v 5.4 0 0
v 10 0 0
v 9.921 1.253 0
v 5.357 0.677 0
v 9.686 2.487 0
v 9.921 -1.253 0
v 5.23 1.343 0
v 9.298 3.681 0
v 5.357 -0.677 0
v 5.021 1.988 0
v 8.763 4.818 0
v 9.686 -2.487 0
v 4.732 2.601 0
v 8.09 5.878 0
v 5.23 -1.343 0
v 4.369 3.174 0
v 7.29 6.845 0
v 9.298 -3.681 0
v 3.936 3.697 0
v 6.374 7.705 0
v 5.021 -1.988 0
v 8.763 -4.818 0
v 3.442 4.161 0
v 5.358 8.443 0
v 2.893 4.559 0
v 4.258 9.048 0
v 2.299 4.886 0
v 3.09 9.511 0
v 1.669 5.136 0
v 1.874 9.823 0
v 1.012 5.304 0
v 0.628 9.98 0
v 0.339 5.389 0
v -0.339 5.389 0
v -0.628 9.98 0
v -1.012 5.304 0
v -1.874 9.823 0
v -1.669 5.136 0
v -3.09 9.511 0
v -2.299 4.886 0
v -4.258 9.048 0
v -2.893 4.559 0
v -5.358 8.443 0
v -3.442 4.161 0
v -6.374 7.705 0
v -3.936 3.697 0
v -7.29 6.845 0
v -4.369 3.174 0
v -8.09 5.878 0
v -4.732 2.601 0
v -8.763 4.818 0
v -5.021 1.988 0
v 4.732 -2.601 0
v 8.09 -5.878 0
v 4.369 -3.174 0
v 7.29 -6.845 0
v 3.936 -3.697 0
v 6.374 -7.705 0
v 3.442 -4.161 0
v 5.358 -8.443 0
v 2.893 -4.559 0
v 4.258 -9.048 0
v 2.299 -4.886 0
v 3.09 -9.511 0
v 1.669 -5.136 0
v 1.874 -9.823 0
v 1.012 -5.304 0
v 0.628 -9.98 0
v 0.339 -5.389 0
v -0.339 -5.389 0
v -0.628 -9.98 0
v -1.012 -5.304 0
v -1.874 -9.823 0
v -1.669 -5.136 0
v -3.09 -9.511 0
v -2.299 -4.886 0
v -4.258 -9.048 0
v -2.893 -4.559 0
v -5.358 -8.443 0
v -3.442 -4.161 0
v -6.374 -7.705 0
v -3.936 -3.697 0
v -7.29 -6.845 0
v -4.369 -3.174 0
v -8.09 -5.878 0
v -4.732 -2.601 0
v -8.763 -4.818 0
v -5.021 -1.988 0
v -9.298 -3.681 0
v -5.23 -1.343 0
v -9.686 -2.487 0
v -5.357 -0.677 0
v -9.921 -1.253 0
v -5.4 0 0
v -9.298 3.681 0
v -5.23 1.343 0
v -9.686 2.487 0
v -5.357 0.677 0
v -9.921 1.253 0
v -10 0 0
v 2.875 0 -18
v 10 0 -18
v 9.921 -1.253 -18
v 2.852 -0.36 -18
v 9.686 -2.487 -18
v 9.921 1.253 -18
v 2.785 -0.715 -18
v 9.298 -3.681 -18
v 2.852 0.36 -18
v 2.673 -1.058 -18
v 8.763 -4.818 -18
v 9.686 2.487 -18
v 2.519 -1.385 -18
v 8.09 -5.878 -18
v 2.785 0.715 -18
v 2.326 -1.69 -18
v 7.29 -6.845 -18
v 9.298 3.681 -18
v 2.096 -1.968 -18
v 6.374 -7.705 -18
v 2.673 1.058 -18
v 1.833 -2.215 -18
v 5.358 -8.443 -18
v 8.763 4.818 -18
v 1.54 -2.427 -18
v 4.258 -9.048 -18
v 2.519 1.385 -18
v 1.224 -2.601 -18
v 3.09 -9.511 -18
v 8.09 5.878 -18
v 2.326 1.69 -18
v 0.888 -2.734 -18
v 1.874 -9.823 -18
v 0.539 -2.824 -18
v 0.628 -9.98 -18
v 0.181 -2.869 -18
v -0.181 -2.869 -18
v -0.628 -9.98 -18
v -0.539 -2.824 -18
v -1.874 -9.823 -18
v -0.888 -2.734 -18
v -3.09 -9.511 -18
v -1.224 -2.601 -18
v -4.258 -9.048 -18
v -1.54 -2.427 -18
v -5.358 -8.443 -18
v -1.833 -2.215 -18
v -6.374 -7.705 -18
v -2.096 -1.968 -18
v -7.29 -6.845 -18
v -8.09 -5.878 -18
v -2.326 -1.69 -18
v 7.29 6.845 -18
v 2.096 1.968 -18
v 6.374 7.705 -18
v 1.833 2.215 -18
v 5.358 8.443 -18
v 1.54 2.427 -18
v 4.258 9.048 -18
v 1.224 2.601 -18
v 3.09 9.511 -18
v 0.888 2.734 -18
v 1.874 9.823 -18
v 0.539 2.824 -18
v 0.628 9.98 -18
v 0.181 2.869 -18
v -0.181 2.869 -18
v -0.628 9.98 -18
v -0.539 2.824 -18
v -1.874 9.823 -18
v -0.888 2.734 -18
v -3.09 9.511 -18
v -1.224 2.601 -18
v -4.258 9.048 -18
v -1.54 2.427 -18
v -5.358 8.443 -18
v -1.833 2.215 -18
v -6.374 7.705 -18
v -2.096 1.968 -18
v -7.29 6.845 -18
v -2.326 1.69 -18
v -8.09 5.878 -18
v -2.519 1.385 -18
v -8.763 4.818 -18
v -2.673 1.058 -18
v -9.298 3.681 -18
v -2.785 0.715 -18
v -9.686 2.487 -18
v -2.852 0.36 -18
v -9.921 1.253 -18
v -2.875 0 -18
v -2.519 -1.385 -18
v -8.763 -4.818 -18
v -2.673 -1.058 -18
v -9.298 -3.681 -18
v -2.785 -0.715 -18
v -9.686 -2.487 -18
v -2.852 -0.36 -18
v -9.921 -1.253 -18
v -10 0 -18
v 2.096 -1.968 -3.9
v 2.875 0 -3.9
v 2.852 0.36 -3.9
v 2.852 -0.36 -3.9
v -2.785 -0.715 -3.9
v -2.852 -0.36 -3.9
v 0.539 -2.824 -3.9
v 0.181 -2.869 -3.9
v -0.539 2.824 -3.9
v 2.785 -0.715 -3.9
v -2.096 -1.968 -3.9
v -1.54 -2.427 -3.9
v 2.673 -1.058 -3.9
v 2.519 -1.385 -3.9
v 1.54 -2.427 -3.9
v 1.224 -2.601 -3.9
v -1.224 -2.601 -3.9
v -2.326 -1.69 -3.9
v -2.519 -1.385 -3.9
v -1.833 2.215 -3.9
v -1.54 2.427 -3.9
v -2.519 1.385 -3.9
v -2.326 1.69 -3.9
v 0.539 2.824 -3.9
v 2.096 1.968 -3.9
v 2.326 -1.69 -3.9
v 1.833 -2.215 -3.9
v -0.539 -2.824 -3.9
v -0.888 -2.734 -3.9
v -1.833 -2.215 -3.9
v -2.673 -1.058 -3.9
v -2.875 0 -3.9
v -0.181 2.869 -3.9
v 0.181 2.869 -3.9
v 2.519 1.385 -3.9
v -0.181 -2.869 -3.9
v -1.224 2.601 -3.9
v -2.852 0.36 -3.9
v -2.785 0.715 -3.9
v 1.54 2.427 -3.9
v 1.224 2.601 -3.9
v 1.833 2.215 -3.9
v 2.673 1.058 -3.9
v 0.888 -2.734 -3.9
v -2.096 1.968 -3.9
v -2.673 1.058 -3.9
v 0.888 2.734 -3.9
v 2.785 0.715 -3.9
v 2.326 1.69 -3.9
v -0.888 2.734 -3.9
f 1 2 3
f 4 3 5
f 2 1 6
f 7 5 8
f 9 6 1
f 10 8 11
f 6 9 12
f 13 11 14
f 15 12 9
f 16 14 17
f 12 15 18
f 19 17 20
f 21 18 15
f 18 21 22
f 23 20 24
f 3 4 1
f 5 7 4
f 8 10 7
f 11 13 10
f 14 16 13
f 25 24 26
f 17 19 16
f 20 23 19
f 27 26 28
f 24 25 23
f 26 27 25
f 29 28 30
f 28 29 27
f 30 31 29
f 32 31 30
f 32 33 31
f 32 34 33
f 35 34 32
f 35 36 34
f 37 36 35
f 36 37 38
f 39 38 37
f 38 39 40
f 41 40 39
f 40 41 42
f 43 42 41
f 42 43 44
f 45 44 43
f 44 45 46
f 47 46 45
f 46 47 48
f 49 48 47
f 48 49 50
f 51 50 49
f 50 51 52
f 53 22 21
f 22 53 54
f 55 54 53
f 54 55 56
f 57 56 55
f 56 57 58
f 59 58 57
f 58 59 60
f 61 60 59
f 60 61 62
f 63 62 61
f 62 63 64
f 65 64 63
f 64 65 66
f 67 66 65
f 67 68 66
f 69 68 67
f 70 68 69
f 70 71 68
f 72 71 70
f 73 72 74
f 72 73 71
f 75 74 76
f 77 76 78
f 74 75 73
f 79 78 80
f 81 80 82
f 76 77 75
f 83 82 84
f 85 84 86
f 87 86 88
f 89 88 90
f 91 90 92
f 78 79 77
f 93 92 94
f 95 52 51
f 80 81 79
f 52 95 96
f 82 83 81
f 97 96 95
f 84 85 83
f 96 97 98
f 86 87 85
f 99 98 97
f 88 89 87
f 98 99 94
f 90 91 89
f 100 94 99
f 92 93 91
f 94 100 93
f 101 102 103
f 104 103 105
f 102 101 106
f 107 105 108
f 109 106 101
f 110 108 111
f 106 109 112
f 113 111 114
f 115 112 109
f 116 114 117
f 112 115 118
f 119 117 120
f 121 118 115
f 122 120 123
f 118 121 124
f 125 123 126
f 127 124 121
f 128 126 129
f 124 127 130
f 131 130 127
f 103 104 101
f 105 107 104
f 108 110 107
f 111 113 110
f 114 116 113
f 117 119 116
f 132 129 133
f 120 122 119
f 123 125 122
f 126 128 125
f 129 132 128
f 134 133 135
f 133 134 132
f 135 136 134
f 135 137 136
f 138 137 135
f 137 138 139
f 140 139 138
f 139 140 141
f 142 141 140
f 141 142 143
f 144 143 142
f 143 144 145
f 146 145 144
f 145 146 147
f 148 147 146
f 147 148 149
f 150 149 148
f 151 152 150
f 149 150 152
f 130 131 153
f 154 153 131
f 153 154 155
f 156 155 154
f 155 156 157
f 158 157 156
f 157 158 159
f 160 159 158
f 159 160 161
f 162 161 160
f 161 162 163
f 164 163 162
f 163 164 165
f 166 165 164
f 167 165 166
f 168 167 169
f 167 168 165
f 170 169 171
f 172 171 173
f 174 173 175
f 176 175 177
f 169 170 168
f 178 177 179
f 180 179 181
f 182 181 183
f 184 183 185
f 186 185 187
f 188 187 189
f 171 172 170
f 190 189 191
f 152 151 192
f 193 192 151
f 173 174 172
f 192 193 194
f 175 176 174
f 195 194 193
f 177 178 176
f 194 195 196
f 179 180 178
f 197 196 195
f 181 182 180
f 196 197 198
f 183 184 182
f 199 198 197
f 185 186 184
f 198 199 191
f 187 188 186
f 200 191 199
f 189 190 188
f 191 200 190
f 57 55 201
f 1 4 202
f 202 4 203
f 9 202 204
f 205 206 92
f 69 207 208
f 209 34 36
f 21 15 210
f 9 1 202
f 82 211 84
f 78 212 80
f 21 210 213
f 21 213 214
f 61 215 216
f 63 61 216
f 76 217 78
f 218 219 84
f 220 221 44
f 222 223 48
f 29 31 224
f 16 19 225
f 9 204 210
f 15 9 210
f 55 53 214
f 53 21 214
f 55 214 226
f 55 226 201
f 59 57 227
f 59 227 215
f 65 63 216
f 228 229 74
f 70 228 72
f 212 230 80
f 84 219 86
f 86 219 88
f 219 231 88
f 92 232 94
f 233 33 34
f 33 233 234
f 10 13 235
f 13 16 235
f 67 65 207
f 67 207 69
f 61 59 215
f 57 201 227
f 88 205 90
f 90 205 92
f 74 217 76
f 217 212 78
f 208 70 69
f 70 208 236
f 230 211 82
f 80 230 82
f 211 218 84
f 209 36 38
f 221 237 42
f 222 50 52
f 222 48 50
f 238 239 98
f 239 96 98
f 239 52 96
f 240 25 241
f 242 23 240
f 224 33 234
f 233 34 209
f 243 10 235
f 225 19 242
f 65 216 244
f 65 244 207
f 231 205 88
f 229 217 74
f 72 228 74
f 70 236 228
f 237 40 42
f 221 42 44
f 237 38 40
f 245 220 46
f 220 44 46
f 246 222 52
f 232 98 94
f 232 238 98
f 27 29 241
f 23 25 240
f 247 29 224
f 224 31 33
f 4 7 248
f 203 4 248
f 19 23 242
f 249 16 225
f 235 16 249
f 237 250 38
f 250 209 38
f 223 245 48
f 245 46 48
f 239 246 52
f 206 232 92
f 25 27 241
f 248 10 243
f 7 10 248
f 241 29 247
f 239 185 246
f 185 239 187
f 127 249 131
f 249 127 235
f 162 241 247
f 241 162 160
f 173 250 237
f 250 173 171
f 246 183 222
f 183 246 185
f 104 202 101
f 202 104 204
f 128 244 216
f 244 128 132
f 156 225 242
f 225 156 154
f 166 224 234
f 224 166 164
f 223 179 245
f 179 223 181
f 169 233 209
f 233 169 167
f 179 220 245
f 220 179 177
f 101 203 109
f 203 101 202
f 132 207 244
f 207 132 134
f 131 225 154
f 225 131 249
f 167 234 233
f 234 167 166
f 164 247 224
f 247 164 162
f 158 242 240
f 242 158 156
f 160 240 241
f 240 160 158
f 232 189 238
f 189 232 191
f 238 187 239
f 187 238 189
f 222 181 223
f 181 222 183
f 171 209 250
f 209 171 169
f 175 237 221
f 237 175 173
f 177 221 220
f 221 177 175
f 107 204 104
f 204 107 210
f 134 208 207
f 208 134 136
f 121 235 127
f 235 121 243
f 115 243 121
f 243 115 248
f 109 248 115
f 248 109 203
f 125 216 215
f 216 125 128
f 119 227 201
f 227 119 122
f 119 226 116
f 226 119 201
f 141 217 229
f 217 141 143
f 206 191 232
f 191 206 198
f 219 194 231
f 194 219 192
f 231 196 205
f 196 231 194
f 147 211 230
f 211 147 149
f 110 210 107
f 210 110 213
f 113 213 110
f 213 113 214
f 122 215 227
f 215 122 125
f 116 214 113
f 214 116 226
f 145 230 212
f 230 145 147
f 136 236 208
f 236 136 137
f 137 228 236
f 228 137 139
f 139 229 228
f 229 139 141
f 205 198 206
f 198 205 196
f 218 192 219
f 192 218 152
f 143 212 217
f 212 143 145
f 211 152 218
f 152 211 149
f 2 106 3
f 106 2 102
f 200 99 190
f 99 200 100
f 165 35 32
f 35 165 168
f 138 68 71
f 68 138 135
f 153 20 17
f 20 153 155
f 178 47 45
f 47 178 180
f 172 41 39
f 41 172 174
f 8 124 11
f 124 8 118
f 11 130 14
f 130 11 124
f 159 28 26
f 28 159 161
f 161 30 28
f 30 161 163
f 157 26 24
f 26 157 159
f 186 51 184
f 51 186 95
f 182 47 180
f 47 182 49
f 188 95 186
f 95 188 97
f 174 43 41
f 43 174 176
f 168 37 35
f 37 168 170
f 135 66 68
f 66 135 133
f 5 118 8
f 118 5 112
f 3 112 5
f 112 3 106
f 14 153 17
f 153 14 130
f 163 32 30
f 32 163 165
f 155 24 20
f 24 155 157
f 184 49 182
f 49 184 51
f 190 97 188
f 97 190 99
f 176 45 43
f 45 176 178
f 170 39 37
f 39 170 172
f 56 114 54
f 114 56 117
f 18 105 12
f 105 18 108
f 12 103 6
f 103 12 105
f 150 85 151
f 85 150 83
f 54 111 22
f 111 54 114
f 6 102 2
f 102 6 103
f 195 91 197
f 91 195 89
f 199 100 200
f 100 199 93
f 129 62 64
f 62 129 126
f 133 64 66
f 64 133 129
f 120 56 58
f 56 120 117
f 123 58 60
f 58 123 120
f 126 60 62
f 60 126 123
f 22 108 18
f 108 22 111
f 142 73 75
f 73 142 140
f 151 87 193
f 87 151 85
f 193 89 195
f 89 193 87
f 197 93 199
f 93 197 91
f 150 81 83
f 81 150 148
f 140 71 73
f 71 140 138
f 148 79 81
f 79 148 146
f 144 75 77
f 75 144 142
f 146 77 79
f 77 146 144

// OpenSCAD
$fn = 50;


difference() {
	union() {
		translate(v = [0, 0, -18.0000000000]) {
			cylinder(h = 18, r = 10.0000000000);
		}
	}
	union() {
		translate(v = [0, 0, 0]) {
			rotate(a = [0, 0, 0]) {
				difference() {
					union() {
						#translate(v = [0, 0, -18.0000000000]) {
							cylinder(h = 18, r = 2.6000000000);
						}
						#translate(v = [0, 0, -3.9000000000]) {
							cylinder(h = 3.9000000000, r = 10.0000000000, r1 = 2.8750000000, r2 = 5.4000000000);
						}
						#translate(v = [0, 0, -18.0000000000]) {
							cylinder(h = 18, r = 2.8750000000);
						}
						#translate(v = [0, 0, -18.0000000000]) {
							cylinder(h = 18, r = 2.6000000000);
						}
					}
					union();
				}
			}
		}
	}
}
